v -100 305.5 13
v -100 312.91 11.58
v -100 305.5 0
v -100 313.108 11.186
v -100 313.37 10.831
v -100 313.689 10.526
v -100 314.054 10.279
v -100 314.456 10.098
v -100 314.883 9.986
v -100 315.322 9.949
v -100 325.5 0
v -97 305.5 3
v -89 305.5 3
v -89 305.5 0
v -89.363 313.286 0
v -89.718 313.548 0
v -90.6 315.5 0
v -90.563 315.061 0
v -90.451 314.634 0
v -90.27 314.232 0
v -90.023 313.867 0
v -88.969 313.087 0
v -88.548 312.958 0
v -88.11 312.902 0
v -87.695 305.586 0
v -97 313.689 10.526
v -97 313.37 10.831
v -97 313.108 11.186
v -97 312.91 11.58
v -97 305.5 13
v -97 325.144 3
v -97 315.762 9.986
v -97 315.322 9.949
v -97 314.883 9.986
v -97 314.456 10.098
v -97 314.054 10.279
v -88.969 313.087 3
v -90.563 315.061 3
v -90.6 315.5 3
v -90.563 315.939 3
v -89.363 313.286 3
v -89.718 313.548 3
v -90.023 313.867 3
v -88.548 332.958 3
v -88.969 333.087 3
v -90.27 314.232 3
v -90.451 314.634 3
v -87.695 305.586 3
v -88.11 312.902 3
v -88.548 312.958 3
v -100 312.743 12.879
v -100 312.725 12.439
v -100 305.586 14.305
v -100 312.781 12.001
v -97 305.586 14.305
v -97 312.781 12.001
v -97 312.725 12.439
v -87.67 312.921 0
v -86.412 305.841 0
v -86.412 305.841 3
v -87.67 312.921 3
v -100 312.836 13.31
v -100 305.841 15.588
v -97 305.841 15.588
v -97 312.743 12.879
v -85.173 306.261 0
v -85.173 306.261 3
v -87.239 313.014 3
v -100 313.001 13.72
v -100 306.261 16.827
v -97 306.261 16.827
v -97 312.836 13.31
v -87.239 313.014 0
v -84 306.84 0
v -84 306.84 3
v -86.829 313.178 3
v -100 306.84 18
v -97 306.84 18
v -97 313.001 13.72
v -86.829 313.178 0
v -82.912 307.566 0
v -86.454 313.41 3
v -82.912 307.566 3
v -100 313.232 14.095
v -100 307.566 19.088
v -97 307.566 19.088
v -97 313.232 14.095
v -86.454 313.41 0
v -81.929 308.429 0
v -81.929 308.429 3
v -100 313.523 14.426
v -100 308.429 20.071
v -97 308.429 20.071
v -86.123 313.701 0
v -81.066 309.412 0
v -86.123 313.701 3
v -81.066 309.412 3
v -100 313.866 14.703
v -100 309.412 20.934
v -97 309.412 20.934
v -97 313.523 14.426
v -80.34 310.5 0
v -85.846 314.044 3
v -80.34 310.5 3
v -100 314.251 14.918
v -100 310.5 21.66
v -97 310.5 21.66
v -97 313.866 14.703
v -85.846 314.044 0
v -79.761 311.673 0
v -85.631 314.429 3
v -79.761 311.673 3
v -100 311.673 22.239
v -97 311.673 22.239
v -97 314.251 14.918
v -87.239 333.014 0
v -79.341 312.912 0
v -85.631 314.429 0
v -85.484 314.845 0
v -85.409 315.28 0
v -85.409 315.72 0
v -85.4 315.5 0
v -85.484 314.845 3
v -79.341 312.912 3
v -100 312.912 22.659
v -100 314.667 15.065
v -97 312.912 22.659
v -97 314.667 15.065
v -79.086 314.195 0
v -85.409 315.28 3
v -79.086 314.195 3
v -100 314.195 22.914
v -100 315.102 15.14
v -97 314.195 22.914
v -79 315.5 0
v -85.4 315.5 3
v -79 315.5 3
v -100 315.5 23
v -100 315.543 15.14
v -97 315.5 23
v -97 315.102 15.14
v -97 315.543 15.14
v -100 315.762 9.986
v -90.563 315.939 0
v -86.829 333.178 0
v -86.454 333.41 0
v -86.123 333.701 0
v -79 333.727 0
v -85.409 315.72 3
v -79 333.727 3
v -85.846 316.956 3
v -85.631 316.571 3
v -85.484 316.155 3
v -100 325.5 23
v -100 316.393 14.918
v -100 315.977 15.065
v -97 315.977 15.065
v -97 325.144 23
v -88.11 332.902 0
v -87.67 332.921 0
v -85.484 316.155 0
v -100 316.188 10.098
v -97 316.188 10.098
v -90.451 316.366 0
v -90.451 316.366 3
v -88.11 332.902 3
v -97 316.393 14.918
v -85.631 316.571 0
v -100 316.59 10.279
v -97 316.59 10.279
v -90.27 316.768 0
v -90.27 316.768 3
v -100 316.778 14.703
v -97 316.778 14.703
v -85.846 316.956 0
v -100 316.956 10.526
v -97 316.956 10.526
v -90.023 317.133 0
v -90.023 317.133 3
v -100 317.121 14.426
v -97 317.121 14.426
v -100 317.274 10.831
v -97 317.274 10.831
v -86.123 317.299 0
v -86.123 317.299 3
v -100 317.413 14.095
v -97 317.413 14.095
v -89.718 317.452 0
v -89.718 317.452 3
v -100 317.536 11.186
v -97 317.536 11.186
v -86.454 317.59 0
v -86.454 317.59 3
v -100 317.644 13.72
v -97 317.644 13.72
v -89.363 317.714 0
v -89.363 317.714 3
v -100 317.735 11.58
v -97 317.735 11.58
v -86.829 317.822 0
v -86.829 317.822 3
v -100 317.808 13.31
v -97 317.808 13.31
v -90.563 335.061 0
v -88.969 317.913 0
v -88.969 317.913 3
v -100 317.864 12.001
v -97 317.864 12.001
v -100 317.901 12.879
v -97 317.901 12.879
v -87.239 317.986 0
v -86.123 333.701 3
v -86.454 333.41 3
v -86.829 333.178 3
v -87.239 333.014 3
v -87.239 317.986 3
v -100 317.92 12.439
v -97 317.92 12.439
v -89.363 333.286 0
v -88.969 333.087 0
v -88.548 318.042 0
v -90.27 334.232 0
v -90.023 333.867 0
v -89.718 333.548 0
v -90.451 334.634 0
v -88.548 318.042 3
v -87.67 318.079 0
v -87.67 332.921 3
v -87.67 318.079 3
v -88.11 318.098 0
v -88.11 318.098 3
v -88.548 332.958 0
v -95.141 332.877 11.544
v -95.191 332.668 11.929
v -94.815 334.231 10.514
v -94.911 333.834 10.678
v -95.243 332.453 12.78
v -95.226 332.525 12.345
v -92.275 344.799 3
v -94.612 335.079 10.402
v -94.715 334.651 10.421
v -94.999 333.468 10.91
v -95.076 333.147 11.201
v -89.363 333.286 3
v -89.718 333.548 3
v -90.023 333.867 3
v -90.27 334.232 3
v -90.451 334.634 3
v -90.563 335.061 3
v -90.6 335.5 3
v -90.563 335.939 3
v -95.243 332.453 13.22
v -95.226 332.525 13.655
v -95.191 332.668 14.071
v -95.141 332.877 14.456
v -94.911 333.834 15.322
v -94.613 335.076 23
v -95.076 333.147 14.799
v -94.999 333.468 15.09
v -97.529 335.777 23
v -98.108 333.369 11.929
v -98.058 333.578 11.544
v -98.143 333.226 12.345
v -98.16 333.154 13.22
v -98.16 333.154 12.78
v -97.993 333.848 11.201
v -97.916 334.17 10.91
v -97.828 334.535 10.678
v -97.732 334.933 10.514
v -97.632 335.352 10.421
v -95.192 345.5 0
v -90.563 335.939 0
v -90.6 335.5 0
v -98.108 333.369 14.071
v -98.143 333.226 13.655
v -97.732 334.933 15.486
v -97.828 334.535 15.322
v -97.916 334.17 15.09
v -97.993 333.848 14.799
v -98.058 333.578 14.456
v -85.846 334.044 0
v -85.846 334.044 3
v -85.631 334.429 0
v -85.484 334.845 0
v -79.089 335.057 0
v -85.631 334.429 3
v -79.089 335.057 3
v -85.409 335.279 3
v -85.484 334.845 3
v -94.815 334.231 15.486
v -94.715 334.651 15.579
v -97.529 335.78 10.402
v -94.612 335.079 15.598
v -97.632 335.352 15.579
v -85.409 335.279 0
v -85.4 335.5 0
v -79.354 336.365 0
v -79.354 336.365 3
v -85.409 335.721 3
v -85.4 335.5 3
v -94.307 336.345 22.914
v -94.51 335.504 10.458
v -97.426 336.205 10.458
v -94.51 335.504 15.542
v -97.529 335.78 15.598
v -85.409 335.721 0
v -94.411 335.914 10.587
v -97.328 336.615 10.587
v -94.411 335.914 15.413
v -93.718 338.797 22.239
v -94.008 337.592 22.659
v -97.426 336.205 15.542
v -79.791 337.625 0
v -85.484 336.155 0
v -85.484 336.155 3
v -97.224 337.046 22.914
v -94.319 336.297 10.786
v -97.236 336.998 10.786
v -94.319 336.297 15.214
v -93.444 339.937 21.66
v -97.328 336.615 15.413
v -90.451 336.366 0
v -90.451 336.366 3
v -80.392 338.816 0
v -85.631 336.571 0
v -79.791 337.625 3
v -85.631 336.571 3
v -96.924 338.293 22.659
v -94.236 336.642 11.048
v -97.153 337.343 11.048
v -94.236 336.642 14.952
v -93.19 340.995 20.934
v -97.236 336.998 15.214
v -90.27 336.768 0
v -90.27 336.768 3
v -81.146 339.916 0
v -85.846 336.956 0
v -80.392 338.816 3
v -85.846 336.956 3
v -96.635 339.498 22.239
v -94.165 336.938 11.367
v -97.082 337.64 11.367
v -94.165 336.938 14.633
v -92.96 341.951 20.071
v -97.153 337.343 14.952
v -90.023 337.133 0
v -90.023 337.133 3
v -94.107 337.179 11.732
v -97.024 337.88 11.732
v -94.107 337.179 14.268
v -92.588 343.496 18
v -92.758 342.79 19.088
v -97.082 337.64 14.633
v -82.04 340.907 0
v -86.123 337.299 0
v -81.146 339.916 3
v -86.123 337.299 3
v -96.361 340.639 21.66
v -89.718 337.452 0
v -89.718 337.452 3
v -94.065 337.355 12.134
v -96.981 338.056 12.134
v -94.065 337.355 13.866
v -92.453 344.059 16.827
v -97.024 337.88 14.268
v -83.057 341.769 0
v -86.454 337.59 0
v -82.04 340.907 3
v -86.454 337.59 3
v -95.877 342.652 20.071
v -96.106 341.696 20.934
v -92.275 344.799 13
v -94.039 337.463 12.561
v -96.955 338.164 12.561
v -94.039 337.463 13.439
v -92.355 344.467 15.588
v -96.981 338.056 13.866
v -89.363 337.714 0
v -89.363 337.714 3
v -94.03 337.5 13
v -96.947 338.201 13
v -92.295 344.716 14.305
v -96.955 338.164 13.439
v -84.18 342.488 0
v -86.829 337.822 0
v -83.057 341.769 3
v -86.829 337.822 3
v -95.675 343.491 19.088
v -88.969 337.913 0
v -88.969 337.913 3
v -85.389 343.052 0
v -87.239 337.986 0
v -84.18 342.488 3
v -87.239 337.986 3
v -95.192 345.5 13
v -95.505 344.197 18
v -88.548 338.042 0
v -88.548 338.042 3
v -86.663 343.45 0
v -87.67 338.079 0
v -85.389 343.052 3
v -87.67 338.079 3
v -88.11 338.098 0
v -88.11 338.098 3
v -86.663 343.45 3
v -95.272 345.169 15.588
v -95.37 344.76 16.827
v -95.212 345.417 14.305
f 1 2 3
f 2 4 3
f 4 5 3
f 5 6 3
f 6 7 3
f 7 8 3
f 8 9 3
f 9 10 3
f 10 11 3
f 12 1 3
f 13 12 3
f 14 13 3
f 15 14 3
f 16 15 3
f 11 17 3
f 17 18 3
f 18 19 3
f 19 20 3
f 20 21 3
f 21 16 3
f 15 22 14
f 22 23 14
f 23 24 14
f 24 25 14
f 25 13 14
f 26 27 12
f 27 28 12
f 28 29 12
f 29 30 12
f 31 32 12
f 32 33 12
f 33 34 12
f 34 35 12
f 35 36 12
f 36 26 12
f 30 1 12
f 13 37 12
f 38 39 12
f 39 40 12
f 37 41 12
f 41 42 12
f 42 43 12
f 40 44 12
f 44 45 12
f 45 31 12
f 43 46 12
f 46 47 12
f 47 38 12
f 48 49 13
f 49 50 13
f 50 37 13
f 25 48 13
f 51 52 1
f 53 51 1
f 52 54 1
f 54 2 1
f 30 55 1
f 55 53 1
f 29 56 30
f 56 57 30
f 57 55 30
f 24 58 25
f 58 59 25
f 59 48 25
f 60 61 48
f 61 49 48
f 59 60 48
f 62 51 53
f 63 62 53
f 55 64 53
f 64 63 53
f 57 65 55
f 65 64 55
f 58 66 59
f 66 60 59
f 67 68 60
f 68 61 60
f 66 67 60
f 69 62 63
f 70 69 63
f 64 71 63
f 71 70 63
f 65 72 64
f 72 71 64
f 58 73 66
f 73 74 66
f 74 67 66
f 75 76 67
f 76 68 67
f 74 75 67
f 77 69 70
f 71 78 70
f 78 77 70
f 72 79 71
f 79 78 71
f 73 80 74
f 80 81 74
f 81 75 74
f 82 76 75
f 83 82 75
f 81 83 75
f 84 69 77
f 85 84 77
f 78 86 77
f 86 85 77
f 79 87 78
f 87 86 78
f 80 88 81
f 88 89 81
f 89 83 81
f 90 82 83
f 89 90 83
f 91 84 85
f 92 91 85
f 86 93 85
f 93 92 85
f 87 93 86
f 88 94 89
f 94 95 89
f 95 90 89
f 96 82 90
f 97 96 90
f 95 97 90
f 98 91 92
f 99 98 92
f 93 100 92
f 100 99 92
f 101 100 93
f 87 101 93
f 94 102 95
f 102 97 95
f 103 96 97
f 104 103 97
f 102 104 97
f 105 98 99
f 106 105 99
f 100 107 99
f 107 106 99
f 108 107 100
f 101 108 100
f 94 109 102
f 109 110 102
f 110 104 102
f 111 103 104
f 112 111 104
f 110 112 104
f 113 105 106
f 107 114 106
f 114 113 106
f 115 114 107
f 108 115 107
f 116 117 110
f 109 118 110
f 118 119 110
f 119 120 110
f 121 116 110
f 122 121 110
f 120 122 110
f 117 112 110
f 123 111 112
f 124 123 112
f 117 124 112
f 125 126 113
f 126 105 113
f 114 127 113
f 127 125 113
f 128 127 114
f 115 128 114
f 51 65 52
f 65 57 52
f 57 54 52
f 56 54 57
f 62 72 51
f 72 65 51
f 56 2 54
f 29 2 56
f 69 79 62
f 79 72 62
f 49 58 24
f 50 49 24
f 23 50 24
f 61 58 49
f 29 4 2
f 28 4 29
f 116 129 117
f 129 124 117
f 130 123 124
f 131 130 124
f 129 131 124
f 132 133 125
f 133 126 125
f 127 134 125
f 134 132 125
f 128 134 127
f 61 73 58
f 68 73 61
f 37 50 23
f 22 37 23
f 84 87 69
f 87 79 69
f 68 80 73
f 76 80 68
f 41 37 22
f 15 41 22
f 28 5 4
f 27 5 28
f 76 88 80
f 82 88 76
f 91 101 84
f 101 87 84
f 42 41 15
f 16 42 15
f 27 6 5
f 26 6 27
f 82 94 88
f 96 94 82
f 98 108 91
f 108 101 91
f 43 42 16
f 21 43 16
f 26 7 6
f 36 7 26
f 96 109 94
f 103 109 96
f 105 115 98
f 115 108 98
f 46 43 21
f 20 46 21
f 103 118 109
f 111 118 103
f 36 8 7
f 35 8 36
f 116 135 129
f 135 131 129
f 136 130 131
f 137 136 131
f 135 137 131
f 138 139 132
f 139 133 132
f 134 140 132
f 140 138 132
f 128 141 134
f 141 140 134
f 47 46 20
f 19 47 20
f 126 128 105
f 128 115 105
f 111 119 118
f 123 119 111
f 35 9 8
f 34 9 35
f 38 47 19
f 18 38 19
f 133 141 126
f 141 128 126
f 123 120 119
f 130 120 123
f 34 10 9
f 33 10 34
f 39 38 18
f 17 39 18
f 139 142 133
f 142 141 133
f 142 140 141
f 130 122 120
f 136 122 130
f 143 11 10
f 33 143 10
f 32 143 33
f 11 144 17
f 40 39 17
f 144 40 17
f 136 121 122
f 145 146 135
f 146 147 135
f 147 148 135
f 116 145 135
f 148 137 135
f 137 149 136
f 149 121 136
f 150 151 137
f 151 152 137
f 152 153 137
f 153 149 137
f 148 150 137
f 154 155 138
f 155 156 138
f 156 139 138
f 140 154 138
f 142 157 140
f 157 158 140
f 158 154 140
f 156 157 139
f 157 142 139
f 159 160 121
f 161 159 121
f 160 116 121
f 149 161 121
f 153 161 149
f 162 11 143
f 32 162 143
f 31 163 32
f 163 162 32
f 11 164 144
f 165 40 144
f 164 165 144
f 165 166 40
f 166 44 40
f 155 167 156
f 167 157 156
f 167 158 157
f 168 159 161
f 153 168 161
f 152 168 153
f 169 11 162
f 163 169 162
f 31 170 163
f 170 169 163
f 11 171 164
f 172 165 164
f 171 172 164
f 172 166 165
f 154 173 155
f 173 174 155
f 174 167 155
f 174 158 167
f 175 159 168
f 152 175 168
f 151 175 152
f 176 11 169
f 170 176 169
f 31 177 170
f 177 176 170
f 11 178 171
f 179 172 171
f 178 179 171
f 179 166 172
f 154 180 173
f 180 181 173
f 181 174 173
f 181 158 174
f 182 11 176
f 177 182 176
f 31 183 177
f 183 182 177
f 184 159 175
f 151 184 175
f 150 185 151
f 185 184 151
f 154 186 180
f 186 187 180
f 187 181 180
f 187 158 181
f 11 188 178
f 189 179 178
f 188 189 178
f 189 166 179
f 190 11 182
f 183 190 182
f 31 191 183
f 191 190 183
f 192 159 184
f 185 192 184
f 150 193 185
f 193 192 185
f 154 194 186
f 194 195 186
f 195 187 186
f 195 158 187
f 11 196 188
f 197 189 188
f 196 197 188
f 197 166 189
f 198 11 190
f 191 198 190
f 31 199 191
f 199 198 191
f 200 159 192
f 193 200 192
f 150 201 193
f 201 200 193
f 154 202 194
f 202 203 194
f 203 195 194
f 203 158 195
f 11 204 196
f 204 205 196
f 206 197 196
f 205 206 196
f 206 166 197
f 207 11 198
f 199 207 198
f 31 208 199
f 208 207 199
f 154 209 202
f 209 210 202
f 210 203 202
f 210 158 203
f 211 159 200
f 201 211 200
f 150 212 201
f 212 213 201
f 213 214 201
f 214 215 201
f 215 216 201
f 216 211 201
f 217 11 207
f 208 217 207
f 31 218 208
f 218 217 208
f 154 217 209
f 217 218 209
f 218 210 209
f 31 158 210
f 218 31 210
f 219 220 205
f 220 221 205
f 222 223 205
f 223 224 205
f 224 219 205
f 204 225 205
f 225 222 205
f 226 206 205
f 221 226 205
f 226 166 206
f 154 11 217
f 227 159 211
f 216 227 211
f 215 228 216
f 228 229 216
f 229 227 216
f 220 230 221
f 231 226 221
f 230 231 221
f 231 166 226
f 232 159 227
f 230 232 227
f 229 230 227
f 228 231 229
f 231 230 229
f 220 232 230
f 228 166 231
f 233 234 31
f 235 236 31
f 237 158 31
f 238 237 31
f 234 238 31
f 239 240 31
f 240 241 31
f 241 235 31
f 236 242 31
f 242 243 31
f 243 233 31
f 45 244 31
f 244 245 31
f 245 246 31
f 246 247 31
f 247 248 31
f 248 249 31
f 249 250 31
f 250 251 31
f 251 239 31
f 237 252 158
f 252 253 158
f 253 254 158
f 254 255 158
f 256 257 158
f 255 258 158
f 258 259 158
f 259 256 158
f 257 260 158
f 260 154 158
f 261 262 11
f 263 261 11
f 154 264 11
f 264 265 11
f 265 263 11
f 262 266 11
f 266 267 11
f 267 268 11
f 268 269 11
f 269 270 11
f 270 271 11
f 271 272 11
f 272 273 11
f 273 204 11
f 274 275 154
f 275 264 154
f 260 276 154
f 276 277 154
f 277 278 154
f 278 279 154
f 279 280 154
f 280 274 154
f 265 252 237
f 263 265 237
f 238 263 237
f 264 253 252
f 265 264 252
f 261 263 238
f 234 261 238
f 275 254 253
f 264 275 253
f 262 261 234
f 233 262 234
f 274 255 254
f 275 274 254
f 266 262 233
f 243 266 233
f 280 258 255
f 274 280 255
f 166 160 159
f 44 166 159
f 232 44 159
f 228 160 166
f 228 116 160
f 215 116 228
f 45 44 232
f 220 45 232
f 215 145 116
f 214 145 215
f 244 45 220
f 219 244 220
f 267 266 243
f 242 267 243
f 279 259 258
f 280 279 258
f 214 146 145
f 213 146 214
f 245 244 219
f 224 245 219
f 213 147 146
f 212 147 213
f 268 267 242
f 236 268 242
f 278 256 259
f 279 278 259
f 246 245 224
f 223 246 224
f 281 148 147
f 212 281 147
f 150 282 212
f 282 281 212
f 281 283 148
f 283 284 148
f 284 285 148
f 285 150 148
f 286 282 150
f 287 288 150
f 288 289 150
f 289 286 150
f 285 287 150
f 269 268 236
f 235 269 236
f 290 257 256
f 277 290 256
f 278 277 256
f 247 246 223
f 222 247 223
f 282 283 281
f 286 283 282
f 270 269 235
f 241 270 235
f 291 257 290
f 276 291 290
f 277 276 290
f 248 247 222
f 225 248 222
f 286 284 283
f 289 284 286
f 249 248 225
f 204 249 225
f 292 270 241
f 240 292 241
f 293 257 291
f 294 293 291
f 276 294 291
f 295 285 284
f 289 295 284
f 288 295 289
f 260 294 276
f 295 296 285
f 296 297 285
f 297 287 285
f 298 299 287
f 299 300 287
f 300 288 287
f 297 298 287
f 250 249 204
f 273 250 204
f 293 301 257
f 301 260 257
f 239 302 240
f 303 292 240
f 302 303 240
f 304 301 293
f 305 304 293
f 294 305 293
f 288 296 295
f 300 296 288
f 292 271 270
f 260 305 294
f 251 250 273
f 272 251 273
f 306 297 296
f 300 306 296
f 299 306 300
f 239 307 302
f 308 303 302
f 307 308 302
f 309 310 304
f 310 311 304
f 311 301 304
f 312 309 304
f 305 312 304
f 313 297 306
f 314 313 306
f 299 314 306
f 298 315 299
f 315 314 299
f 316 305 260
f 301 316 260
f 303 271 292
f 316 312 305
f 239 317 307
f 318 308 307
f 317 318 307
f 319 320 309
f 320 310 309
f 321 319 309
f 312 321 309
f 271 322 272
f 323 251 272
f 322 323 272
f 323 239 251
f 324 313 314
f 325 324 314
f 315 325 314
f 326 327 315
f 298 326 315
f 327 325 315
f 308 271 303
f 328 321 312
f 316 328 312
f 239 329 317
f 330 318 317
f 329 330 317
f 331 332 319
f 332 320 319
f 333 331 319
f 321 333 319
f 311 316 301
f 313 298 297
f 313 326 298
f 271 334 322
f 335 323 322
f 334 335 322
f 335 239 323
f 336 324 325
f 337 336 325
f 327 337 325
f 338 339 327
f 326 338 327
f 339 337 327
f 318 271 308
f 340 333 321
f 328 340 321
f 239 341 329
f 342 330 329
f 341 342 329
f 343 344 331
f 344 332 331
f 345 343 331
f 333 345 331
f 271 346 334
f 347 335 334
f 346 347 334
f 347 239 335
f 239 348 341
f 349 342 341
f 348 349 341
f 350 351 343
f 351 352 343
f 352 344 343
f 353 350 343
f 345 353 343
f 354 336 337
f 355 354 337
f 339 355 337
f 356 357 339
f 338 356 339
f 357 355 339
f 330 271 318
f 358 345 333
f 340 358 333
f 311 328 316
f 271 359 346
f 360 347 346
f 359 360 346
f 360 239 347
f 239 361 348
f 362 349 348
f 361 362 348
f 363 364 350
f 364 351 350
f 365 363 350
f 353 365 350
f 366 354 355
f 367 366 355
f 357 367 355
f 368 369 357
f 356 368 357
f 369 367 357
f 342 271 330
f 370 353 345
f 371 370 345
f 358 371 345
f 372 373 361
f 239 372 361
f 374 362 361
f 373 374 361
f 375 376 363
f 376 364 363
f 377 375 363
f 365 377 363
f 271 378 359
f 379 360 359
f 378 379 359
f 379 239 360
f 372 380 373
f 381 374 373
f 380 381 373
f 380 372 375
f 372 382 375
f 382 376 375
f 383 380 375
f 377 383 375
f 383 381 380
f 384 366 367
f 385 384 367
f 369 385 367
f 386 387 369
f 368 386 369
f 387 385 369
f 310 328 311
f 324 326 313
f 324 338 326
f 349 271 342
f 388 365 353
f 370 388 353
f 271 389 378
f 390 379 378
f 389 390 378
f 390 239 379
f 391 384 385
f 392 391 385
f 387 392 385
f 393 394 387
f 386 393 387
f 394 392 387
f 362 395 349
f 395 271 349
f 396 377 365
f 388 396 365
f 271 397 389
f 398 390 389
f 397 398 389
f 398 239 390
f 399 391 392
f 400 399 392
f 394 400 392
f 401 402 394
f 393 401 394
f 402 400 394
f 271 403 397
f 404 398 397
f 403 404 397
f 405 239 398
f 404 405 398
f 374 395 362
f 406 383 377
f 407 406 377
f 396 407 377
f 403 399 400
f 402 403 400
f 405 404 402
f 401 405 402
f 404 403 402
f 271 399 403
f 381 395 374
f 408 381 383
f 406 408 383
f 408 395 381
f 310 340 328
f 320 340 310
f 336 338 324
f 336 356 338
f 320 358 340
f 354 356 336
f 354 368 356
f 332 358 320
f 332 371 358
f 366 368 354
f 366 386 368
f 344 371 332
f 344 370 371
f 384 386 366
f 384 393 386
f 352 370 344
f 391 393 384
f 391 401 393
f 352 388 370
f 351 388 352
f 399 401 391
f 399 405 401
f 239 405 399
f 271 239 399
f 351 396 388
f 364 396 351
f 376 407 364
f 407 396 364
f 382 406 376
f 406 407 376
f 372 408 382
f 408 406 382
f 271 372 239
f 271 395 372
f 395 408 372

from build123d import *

# Parameters (mm, degrees)
BOSS_EXTRU_1_DEPTH      = 23
ESQUISSE2_R             = 2.6
BOSS_EXTRU_2_DEPTH      = 3
ESQUISSE3_R             = 2.6
ENL_V_MAT_EXTRU_1_DEPTH = 3
ESQUISSE4_R             = 2.6
ENL_V_MAT_EXTRU_2_DEPTH = 3
CONG_1_R                = 10


with BuildPart() as part:
    # Esquisse1 → Boss.-Extru.1 (new body)
    with BuildSketch(Plane.XY):
        Polygon((-100, 325.5), (-100, 305.5), (-97, 305.5), (-97, 325.144463965), (-92.275093963, 344.79877668), (-95.191990577, 345.5), align=None)
    extrude(amount=BOSS_EXTRU_1_DEPTH)

    # Esquisse2 → Boss.-Extru.2 (add)
    with BuildSketch(Plane.XY):
        Polygon((-92.275093963, 344.79877668), (-79, 341.607437837), (-79, 305.5), (-97, 305.5), (-97, 325.144463965), align=None)
        with Locations((-88, 315.5)):
            Circle(ESQUISSE2_R, mode=Mode.SUBTRACT)
        with Locations((-88, 335.5)):
            Circle(ESQUISSE2_R, mode=Mode.SUBTRACT)
    extrude(amount=BOSS_EXTRU_2_DEPTH)

    # Esquisse3 → Enlèv. mat.-Extru.1 (cut)
    with BuildSketch(Plane(origin=(-97, 0, 0), x_dir=(0, 0, -1), z_dir=(1, 0, 0))):
        with Locations((-12.549028202, 315.322231983)):
            Circle(ESQUISSE3_R)
    extrude(amount=-ENL_V_MAT_EXTRU_1_DEPTH, mode=Mode.SUBTRACT)

    # Esquisse4 → Enlèv. mat.-Extru.2 (cut)
    with BuildSketch(Plane(origin=(-165.594765625, 39.809059675, 0), x_dir=(0, 0, -1), z_dir=(0.9722988712431988, -0.23374110673820697, 0))):
        with Locations(Location((-13, 303.571843368, 0), (0, 0, 90))):
            Circle(ESQUISSE4_R)
    extrude(amount=-ENL_V_MAT_EXTRU_2_DEPTH, mode=Mode.SUBTRACT)

    # Congé1
    cong_1_edges = [part.edges().sort_by_distance(p)[0] for p in [
        (-98.5, 305.5, 23),
        (-93.73354227, 345.14938834, 23),
        (-79, 305.5, 1.5),
        (-79, 341.607437837, 1.5),
    ]]
    fillet(cong_1_edges, radius=CONG_1_R)


solid = part.part
